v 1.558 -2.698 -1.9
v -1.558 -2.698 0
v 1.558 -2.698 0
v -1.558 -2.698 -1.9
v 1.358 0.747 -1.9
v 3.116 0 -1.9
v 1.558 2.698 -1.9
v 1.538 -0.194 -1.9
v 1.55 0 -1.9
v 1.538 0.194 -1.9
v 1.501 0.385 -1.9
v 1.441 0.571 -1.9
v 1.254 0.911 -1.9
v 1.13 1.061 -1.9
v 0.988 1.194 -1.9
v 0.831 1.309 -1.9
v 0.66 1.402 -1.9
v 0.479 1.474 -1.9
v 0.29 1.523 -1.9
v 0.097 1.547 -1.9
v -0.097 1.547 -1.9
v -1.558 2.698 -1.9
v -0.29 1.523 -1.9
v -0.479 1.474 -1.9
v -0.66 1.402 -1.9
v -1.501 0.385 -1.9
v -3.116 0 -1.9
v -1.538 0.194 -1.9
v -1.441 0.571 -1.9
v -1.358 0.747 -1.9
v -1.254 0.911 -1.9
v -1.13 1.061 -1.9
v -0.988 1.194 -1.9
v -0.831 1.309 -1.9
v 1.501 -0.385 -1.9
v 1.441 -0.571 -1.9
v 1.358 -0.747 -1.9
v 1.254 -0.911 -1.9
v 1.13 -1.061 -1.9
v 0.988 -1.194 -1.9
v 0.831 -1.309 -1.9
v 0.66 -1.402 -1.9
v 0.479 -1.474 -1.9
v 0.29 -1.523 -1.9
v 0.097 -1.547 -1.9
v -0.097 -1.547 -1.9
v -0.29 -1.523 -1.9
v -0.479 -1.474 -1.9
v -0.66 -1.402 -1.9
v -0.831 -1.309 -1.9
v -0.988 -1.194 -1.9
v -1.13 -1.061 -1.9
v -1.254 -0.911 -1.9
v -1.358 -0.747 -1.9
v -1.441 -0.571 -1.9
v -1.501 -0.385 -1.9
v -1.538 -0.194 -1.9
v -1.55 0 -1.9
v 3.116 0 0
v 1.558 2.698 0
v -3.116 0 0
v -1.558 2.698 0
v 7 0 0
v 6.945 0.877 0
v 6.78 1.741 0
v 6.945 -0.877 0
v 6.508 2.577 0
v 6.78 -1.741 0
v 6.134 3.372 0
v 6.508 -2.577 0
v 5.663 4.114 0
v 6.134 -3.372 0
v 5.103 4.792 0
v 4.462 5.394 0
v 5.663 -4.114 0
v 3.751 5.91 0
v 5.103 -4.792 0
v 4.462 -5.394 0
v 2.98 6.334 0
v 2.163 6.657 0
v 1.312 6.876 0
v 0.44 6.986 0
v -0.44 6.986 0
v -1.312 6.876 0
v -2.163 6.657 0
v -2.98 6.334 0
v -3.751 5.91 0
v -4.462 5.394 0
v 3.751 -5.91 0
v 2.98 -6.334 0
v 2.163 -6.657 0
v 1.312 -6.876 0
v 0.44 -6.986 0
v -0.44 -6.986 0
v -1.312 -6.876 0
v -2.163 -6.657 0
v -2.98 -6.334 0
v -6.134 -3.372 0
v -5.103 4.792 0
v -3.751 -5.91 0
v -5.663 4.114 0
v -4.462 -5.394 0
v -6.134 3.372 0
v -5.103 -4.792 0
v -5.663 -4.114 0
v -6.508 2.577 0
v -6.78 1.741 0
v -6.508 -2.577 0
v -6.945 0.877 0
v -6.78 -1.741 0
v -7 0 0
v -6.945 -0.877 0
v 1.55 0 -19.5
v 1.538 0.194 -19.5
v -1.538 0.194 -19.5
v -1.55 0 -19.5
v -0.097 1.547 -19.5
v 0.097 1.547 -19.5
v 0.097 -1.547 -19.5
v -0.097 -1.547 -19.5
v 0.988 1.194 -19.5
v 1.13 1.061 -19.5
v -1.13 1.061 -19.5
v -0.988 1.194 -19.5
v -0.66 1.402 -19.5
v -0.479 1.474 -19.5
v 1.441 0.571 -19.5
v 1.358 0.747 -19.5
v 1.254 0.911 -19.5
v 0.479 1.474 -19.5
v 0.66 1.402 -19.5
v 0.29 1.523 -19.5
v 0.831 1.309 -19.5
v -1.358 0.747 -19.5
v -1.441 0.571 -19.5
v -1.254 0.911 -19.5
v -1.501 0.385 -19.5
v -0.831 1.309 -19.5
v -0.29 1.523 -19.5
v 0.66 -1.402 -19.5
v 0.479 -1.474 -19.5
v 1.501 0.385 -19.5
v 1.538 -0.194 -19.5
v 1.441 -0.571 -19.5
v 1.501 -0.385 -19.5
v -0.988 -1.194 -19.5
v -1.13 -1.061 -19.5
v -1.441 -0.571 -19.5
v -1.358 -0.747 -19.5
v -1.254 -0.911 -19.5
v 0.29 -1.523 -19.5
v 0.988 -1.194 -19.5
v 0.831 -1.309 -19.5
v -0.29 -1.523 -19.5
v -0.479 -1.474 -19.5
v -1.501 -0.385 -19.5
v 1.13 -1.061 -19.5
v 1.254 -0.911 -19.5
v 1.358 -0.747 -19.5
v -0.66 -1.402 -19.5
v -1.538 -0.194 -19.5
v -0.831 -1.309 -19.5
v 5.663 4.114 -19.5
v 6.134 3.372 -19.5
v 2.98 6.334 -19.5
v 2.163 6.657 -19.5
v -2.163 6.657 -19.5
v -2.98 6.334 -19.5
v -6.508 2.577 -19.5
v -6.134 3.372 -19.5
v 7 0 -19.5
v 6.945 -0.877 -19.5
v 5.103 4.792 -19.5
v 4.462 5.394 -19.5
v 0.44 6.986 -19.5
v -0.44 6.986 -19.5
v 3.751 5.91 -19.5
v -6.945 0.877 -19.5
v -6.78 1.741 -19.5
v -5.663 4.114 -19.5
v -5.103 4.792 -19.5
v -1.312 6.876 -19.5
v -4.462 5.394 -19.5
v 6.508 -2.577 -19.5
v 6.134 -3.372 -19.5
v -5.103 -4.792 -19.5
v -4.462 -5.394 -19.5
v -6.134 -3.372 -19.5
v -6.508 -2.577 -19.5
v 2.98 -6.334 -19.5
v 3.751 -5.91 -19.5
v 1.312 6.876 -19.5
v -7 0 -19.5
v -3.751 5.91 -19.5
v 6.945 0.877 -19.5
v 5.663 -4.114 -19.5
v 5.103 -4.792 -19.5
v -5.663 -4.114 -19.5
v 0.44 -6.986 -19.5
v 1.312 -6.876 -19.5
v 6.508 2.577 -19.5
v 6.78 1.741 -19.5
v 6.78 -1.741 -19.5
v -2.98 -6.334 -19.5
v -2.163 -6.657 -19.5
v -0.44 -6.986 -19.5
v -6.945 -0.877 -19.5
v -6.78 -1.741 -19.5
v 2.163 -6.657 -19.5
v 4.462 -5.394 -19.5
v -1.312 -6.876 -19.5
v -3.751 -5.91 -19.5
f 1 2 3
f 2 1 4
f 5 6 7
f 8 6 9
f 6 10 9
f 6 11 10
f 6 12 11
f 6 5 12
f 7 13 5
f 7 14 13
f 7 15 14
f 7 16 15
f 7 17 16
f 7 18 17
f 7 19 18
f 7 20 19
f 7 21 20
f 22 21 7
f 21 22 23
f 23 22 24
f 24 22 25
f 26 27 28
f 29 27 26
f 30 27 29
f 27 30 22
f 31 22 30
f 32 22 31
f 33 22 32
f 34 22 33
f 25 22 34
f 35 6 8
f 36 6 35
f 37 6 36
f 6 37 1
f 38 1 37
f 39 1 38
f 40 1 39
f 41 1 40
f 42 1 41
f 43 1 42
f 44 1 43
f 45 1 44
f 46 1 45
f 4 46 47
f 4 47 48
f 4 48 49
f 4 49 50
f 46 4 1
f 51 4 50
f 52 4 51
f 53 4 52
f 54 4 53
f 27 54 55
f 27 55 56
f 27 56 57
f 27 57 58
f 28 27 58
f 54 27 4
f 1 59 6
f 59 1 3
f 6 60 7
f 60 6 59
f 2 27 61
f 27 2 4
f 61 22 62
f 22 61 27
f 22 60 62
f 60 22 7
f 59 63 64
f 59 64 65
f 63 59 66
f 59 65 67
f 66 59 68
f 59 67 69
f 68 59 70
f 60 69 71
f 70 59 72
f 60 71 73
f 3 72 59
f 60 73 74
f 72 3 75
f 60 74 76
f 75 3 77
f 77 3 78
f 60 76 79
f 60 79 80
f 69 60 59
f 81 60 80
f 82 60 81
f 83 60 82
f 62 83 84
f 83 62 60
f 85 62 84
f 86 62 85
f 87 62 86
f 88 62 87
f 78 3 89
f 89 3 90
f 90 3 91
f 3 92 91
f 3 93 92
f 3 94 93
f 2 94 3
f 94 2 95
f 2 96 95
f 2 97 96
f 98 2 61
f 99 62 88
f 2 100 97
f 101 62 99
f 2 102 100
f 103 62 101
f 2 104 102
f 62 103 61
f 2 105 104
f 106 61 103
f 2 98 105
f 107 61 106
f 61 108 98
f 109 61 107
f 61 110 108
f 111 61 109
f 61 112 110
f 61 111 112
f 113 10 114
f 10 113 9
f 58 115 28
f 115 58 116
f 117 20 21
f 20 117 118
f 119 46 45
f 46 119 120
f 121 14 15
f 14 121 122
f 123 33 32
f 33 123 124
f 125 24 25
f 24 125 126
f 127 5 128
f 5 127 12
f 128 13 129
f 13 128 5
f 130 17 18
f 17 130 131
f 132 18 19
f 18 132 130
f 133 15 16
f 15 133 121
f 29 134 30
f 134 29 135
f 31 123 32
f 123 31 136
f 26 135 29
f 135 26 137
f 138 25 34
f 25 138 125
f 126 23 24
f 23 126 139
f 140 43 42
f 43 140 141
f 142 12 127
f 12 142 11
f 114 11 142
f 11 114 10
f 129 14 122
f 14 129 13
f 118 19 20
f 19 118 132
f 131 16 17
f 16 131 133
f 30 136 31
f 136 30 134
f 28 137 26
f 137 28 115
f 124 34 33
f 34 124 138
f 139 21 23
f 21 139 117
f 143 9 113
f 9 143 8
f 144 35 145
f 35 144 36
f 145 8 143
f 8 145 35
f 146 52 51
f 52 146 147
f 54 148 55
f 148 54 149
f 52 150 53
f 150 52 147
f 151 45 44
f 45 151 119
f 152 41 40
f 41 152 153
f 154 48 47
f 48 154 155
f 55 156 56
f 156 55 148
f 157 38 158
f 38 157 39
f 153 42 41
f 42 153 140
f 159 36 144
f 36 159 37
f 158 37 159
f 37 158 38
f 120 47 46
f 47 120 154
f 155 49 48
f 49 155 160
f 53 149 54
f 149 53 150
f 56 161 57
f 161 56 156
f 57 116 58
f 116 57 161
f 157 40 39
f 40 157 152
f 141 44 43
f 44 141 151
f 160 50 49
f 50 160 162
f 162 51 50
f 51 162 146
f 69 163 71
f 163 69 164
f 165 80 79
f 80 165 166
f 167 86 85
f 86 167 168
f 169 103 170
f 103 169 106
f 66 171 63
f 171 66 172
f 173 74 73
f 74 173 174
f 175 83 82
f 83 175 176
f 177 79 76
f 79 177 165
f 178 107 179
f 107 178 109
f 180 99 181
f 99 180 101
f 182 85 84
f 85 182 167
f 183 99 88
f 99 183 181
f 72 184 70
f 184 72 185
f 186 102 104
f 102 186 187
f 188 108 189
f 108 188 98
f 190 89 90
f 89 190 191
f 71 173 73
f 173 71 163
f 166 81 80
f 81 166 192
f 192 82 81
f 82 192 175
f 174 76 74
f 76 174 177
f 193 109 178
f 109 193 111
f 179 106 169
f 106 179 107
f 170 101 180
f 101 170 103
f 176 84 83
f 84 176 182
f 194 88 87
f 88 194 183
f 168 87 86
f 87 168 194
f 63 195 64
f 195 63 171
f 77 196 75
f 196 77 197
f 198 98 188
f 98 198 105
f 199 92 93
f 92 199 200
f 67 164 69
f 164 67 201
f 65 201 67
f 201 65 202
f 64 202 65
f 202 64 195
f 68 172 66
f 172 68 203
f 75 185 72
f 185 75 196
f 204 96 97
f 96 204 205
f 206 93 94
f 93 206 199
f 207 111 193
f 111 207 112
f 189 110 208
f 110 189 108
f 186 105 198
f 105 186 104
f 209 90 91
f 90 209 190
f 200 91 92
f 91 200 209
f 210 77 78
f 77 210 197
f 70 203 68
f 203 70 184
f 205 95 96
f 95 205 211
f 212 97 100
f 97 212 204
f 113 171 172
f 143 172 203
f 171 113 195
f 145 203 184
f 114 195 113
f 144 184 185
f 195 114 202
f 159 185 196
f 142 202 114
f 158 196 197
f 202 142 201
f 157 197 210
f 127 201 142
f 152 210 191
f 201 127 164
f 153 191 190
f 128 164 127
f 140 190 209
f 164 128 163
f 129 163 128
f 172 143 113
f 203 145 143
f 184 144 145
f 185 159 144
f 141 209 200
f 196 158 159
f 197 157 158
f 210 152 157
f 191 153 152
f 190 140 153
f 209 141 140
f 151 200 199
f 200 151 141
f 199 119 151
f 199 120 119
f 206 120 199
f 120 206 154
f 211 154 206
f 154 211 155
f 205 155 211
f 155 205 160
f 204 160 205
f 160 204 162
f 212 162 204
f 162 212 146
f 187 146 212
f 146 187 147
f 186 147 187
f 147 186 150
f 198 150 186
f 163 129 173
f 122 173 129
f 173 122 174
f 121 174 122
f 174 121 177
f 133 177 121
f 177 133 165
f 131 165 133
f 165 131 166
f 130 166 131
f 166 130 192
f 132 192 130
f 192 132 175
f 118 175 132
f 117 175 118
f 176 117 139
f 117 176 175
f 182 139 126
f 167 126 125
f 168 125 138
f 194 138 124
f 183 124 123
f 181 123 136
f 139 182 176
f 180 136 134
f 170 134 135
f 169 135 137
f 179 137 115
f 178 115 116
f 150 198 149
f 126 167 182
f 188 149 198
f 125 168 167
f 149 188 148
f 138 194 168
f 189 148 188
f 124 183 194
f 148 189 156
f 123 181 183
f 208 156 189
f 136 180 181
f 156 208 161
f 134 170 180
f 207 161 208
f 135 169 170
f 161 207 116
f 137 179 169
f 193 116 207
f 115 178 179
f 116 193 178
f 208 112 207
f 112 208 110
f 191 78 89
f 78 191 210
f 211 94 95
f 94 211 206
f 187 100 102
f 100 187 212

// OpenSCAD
$fn = 50;

difference() {
	union() {
		translate(v = [0, 0, -19.5]) {
			cylinder(h = 19.5, r = 7.0);
		}
	}
	union() {
		translate(v = [0, 0, 0]) {
			rotate(a = [0, 0, 0]) {
				difference() {
					union() {
						translate(v = [0, 0, -1.9]) {
							linear_extrude(height = 1.9) {
								polygon(points = [[3.1158, 0.0], [1.5579000000000005, 2.698361953111554], [-1.5578999999999994, 2.6983619531115544], [-3.1158, 3.815754496783323e-16], [-1.5579000000000014, -2.6983619531115535], [1.557899999999998, -2.6983619531115552]]);
							}
						}
					}
					union();
				}
			}
		}
		#translate(v = [0, 0, -100.0]) {
			cylinder(h = 200, r = 1.55);
		}
	}
}
